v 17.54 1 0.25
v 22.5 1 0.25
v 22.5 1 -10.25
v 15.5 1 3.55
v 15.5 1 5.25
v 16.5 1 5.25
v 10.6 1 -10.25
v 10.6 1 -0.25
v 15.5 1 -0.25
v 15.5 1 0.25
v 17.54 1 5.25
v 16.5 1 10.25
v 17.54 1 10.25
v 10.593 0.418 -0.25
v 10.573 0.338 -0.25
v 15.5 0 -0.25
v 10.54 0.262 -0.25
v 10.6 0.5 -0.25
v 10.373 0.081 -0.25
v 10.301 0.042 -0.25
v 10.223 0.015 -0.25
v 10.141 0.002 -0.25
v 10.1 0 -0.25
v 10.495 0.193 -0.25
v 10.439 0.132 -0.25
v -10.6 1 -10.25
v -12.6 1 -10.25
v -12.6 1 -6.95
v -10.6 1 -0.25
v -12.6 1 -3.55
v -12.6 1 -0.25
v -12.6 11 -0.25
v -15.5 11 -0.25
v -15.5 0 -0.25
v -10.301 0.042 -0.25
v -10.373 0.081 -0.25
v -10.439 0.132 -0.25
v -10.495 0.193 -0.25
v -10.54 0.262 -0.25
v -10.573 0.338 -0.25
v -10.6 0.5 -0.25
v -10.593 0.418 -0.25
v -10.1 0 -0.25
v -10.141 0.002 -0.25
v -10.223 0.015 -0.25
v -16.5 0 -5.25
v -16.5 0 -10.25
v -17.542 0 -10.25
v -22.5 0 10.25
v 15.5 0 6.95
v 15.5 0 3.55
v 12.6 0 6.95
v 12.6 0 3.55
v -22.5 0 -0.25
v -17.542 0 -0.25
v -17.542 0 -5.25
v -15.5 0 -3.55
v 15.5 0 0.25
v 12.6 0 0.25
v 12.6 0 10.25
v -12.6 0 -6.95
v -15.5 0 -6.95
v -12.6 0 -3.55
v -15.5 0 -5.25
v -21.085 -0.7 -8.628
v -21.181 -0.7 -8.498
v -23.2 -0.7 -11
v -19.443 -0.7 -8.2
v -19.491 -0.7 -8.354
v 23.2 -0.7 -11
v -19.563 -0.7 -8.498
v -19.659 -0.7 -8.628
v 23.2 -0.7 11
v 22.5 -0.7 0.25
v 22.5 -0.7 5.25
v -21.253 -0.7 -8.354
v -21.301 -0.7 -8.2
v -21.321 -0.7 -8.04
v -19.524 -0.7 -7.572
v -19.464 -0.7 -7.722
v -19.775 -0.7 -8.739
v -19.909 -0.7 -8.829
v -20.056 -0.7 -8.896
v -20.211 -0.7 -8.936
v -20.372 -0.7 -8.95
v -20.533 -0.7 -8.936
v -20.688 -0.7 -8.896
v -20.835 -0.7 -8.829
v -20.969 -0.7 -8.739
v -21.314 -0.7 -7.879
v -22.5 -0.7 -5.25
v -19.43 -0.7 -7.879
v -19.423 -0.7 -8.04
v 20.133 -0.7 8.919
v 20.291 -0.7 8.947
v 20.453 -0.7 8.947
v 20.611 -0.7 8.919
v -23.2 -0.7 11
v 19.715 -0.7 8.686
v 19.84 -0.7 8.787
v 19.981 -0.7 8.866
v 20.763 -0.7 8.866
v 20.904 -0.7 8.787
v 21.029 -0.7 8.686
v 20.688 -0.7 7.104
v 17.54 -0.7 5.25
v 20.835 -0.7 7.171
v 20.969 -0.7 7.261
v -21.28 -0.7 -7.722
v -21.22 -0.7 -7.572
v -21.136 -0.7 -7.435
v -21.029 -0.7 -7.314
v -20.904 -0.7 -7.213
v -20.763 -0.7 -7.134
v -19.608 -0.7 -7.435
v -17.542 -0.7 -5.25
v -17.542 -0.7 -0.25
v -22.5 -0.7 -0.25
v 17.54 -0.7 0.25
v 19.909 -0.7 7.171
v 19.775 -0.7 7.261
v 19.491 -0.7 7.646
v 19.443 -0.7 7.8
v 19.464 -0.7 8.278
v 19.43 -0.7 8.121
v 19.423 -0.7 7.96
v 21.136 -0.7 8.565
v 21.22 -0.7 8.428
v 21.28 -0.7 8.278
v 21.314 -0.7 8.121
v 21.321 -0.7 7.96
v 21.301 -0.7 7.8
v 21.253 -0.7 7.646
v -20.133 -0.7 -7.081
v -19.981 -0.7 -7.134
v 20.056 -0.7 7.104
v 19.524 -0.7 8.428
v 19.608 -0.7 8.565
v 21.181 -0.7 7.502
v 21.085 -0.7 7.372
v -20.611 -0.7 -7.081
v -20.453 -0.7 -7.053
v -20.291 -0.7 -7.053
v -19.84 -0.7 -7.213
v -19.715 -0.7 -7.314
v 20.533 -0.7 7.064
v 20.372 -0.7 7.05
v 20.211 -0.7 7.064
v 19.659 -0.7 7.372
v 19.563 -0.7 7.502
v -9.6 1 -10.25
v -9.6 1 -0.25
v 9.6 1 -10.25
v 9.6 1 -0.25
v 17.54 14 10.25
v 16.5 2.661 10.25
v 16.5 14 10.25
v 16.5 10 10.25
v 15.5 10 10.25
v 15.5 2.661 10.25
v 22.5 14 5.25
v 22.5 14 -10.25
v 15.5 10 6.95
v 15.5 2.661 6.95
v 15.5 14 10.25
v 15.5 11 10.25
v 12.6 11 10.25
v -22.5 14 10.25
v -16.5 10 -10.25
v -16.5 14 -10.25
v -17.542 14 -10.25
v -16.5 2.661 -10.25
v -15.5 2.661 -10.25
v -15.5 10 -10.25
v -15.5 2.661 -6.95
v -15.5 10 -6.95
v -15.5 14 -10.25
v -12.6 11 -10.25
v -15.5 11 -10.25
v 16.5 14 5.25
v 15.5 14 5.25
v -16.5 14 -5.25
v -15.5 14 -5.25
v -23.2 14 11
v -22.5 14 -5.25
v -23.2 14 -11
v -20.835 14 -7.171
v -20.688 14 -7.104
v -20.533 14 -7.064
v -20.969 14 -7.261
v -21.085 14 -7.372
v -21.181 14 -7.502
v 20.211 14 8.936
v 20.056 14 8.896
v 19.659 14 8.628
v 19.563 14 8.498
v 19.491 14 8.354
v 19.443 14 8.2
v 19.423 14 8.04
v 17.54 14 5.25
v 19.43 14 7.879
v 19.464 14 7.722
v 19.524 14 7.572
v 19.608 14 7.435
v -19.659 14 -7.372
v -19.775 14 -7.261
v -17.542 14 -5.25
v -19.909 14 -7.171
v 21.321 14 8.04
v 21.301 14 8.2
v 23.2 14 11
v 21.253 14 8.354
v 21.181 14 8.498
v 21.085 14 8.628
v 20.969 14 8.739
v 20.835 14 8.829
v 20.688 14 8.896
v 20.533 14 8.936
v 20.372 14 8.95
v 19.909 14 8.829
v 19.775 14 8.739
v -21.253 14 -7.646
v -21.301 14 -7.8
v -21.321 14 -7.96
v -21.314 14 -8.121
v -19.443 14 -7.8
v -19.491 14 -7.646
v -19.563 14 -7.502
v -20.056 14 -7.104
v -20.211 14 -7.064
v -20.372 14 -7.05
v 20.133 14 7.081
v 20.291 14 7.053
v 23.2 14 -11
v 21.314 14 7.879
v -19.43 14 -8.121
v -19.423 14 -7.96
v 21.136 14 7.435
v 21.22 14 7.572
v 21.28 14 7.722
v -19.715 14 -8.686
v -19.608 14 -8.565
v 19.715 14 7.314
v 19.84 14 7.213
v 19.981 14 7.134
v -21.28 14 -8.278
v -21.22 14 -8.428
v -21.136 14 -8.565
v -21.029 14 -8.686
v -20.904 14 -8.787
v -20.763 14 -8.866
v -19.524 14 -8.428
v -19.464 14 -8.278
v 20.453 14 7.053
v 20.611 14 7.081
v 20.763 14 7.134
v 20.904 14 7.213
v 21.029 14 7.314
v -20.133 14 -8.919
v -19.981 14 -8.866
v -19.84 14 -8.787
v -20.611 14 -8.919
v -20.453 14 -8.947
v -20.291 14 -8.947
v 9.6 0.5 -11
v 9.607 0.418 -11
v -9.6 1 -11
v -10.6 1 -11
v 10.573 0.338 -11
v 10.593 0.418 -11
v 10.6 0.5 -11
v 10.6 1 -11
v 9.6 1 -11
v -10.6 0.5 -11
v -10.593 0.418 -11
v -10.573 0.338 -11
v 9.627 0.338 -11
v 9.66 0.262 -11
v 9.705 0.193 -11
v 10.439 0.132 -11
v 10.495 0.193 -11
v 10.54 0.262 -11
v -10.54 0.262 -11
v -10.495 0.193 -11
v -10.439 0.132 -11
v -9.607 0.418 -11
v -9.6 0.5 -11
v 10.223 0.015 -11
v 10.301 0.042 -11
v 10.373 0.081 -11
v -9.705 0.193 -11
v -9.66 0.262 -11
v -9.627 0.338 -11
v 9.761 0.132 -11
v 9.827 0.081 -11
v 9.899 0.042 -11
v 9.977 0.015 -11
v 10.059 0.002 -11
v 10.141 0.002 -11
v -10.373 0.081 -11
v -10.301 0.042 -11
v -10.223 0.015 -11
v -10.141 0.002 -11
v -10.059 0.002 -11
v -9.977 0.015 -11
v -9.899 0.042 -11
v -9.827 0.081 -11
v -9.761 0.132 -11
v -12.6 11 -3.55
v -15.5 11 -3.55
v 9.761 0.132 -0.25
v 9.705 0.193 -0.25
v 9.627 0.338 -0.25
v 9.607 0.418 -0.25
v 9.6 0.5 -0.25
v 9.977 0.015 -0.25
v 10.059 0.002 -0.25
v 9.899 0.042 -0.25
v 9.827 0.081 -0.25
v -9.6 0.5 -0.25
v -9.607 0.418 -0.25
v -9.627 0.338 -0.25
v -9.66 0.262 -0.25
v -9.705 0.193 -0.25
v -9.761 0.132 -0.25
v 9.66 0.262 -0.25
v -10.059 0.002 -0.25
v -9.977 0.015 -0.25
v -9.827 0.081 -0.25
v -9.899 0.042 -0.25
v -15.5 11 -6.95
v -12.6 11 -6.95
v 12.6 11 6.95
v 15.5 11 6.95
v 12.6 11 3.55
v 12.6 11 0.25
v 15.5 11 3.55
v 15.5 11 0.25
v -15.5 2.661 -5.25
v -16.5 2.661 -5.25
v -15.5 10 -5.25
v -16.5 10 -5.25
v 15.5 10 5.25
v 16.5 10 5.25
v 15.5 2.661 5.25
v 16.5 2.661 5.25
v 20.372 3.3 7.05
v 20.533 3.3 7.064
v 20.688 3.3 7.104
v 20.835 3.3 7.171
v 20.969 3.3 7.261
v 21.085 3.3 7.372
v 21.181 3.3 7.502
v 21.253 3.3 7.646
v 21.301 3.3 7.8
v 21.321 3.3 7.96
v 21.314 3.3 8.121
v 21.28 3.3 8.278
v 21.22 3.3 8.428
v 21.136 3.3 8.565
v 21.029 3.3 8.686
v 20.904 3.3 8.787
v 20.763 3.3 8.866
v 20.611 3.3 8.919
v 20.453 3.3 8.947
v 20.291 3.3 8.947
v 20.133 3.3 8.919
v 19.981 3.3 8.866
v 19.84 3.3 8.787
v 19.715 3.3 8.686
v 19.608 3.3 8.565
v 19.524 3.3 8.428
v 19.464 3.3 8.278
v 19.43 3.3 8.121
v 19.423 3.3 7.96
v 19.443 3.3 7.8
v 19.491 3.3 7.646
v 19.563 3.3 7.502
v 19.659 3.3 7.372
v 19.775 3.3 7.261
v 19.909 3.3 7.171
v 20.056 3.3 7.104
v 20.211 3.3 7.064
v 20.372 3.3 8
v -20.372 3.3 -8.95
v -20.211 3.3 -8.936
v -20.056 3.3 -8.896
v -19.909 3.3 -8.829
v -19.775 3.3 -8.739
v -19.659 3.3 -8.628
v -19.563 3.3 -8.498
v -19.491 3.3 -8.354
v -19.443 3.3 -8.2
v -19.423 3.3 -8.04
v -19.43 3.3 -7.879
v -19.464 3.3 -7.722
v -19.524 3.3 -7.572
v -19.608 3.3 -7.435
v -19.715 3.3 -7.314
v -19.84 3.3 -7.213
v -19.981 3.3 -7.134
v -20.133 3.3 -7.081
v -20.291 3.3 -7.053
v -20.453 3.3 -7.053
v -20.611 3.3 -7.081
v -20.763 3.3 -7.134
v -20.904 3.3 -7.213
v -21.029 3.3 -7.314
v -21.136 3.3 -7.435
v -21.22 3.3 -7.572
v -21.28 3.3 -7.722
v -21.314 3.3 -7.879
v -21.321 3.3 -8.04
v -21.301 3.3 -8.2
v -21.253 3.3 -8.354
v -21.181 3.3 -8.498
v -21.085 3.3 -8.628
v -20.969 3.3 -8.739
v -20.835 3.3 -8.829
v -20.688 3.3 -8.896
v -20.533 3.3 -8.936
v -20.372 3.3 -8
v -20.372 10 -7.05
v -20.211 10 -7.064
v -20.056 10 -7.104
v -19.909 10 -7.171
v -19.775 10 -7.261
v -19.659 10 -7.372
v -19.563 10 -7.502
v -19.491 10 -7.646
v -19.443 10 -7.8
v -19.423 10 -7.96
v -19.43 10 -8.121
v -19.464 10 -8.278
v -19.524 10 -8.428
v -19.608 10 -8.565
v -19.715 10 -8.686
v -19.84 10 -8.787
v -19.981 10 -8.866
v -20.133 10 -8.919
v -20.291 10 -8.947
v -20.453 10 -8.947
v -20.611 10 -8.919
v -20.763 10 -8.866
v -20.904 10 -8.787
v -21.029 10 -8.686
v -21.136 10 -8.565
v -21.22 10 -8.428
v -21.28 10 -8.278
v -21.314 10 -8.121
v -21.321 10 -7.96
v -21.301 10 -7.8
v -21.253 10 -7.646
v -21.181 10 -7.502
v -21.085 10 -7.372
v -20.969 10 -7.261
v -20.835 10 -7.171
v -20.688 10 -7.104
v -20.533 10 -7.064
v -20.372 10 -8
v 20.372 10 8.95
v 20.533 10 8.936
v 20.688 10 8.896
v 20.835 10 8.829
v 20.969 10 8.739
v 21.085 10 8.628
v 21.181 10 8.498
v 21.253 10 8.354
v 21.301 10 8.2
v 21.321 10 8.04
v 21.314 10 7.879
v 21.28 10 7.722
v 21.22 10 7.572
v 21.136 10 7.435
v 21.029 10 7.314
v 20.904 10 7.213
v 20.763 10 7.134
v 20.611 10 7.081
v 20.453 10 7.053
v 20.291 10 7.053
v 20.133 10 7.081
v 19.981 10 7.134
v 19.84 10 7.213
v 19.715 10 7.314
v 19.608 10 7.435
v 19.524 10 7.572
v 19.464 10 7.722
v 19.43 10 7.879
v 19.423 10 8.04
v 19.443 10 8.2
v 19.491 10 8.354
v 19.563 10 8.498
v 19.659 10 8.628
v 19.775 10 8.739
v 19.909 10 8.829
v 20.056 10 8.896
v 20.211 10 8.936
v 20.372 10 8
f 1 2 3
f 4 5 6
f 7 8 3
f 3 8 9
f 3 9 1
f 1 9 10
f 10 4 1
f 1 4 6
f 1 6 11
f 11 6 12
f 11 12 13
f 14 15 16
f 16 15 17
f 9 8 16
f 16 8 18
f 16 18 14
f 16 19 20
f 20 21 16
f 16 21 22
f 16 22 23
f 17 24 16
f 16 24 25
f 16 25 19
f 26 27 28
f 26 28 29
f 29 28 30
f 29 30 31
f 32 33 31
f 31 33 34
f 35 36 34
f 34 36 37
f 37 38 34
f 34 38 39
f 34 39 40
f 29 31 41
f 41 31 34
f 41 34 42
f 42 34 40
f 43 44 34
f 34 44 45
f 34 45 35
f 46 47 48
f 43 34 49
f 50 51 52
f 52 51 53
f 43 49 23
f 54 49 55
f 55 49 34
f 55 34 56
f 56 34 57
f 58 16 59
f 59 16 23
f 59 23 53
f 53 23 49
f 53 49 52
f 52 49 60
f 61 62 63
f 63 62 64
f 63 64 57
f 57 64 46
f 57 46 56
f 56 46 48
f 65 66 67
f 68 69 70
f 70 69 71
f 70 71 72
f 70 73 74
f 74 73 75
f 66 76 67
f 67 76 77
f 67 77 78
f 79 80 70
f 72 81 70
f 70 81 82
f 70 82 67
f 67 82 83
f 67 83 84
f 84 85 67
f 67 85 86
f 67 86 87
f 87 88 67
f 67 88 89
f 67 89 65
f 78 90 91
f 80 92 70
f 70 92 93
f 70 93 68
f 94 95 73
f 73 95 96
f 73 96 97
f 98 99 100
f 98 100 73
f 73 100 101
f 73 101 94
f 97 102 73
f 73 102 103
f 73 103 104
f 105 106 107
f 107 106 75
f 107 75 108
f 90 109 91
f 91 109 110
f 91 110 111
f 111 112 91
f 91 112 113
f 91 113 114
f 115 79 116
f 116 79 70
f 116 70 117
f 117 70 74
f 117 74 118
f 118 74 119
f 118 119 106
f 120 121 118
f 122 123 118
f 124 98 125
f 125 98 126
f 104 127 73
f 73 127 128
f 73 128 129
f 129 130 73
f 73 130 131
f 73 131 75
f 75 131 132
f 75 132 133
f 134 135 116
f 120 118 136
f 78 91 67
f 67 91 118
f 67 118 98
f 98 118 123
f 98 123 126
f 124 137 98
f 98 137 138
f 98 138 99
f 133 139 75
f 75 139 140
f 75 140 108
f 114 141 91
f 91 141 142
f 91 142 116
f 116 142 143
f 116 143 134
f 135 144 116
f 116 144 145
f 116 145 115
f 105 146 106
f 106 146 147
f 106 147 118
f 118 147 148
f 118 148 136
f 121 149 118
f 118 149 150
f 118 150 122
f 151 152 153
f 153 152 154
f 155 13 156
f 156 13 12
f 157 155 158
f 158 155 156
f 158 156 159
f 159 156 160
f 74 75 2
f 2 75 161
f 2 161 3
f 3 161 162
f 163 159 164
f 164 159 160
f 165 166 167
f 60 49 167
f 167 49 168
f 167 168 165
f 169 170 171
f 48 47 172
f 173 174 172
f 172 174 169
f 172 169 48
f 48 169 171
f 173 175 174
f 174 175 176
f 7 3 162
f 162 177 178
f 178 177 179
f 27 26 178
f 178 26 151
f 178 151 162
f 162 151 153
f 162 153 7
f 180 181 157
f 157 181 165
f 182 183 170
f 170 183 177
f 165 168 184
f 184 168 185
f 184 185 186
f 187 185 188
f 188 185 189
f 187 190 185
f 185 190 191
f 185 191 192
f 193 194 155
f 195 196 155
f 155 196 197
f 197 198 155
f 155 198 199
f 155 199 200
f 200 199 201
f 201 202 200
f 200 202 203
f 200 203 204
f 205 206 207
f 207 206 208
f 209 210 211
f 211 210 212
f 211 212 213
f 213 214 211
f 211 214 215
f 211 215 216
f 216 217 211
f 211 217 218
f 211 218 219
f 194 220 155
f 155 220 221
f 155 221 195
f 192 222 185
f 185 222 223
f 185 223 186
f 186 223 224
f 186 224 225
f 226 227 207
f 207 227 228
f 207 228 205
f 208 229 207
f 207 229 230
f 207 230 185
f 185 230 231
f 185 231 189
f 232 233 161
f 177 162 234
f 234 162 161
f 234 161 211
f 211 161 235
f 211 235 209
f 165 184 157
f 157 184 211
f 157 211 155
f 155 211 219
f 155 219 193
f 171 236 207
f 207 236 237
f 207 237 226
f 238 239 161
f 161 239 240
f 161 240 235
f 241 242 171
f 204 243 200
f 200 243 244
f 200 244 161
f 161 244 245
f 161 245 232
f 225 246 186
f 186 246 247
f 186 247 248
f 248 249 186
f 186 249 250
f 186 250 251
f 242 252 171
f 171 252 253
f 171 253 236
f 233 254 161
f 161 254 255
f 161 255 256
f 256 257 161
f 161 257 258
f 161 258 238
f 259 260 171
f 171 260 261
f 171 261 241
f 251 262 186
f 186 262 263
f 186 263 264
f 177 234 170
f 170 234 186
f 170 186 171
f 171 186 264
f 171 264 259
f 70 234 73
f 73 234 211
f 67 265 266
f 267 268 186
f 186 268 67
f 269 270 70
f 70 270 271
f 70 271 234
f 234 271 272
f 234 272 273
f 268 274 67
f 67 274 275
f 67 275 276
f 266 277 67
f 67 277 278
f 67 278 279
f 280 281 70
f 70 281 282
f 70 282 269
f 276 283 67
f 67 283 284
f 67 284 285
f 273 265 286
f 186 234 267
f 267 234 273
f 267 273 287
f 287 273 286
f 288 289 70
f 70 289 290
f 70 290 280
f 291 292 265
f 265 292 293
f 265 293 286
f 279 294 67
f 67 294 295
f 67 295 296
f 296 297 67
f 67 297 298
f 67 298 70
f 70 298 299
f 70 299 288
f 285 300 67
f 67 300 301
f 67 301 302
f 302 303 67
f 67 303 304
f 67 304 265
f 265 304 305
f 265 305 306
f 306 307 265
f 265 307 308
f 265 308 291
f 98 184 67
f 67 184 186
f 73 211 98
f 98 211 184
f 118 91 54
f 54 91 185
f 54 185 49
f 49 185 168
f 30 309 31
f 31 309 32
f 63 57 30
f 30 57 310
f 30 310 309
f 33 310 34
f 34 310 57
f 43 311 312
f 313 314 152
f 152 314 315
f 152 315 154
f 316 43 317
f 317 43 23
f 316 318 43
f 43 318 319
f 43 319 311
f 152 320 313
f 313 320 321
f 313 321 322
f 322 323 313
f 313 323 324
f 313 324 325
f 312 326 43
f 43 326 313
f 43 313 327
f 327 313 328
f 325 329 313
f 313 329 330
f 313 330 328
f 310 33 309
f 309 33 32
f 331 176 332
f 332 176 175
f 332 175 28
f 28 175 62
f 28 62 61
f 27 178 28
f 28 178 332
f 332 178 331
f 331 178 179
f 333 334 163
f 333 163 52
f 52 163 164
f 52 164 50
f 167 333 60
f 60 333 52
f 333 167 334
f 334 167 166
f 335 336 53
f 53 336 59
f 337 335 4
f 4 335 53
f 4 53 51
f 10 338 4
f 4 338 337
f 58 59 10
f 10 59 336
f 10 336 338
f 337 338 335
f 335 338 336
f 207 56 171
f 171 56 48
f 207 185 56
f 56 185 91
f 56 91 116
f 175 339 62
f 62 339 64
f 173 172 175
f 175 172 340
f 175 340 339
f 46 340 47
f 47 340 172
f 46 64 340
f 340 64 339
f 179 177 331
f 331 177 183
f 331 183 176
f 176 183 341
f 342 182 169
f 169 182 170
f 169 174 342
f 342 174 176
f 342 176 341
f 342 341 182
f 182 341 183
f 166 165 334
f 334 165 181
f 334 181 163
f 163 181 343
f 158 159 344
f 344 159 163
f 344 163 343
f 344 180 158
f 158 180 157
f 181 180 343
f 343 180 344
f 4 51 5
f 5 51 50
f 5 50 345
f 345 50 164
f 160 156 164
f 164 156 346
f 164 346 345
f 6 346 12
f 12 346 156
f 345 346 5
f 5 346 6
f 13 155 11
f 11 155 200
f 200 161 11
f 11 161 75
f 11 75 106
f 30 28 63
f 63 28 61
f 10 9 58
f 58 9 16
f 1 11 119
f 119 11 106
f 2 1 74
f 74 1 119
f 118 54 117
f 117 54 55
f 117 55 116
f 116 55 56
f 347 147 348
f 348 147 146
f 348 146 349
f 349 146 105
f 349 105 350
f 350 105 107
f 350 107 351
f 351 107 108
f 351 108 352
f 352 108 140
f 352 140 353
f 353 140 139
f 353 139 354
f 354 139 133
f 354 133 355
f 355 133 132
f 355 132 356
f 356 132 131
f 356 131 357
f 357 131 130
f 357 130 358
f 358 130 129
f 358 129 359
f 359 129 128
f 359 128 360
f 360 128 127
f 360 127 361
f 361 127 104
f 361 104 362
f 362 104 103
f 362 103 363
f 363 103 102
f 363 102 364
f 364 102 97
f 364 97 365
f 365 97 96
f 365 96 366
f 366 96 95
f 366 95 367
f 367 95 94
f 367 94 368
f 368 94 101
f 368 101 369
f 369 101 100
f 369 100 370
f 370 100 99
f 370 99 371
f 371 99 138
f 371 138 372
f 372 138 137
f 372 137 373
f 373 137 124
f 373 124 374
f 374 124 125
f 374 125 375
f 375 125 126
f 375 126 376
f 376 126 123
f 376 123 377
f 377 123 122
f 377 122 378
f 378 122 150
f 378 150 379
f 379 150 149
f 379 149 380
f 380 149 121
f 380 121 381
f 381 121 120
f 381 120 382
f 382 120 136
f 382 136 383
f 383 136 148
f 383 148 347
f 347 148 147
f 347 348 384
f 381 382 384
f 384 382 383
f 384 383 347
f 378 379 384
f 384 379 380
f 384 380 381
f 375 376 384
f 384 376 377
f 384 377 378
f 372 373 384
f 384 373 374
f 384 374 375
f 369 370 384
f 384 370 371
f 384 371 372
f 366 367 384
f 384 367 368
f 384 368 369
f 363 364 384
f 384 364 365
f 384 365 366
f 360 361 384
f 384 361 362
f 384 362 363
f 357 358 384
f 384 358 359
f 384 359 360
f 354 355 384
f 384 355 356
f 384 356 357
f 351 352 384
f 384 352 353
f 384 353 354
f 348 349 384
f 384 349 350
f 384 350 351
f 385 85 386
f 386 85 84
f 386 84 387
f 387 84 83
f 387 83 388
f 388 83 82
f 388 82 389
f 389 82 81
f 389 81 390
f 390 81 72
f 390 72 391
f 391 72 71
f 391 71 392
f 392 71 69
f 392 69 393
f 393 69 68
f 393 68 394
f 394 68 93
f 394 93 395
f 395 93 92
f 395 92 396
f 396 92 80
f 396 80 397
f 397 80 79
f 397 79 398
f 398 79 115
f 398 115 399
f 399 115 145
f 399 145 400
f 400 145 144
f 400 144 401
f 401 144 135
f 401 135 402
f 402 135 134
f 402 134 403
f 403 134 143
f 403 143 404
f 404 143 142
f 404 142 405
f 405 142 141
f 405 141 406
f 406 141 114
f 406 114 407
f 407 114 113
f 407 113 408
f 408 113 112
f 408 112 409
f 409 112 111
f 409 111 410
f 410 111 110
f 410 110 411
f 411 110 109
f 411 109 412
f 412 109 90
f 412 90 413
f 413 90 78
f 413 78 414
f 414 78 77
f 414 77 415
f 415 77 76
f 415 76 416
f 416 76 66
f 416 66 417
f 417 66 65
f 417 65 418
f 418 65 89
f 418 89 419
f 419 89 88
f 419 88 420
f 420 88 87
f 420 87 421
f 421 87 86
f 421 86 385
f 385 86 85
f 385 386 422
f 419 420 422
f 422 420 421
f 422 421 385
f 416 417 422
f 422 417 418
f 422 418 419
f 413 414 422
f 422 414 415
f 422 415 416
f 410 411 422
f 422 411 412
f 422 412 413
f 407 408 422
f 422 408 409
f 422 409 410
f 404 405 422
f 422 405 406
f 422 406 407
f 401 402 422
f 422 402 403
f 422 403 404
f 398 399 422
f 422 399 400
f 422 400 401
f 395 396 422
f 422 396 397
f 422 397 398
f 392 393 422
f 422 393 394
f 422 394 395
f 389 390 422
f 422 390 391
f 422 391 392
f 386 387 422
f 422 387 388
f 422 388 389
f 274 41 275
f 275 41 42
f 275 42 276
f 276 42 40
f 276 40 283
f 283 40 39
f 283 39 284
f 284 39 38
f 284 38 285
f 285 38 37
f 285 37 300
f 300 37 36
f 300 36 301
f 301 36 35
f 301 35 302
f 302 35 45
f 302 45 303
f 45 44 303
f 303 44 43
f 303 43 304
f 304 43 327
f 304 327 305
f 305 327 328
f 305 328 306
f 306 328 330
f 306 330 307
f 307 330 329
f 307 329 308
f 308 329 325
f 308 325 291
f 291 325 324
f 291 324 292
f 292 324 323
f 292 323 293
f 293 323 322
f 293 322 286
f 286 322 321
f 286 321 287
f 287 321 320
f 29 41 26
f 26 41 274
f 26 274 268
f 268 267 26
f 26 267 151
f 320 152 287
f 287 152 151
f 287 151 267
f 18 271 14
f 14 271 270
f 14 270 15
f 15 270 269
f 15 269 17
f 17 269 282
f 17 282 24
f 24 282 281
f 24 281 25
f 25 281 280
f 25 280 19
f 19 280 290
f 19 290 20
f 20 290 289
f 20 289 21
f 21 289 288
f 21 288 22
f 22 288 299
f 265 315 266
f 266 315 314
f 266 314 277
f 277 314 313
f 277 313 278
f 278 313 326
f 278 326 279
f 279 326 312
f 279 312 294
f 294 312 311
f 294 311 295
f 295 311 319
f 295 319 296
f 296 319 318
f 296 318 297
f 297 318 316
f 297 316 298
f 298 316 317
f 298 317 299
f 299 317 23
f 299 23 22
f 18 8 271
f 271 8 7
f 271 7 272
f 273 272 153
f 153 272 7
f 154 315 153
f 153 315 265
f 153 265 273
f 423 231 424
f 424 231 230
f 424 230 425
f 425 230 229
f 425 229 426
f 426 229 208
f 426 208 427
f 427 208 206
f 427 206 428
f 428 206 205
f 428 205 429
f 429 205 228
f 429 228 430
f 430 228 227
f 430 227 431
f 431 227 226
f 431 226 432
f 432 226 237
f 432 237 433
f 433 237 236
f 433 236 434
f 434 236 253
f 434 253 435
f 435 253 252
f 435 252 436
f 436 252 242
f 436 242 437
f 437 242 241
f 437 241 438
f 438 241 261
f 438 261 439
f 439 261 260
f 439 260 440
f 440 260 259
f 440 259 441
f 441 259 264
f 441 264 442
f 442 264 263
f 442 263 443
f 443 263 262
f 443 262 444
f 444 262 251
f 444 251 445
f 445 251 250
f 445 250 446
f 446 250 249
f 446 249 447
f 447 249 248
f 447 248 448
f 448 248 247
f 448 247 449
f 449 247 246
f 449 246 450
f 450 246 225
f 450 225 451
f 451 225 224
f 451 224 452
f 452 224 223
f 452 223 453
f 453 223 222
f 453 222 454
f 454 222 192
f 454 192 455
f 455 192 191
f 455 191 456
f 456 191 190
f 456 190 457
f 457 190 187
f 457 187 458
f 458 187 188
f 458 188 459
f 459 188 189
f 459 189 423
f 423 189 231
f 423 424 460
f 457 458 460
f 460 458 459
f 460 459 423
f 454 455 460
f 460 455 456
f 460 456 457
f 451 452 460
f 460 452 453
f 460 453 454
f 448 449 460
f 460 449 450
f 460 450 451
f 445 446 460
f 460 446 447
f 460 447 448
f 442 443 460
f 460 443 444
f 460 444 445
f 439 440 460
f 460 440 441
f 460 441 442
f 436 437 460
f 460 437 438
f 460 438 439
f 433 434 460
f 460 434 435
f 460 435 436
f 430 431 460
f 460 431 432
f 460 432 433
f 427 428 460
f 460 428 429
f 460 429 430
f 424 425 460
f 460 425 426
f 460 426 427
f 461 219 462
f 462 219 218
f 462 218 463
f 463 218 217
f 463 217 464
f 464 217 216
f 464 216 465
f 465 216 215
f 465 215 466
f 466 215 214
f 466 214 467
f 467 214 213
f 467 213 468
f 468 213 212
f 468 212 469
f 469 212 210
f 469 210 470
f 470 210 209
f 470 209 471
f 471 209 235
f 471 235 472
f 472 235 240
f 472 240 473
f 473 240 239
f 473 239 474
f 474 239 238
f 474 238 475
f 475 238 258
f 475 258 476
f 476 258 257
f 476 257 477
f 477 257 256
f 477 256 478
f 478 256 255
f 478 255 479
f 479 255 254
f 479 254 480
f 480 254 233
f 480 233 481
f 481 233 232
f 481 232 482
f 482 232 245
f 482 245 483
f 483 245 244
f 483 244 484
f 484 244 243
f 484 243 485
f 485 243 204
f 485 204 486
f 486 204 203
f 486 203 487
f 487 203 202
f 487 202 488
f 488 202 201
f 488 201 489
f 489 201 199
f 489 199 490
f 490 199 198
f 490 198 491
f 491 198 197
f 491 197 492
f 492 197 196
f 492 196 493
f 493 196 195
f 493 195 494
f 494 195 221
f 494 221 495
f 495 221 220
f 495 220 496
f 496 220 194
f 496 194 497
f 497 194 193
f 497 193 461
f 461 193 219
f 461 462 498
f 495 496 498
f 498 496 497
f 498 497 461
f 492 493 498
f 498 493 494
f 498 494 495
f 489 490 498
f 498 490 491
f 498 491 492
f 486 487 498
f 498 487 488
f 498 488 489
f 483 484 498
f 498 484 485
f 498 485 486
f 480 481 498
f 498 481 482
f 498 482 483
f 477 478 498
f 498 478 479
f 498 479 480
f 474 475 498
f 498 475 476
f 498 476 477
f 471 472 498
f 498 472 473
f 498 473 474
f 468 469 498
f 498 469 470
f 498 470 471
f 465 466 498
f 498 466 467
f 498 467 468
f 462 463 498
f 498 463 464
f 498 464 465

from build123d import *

# Parameters (mm, degrees)
ESBO_O1_W                = 46.4
ESBO_O1_H                = 22
ESBO_O1_W_2              = 45
ESBO_O1_H_2              = 20.5
RESSALTO_EXTRUS_O1_DEPTH = 14
ESBO_O2_W                = 46.4
ESBO_O2_H                = 22
RESSALTO_EXTRUS_O2_DEPTH = 0.7
ESBO_O3_W                = 2.9
ESBO_O3_H                = 3.3
RESSALTO_EXTRUS_O3_DEPTH = 11
ESBO_O4_W                = 4.95750459
ESBO_O4_H                = 14
ESBO_O4_W_2              = 1
ESBO_O4_H_2              = 2.660947199
ESBO_O4_H_3              = 4
RESSALTO_EXTRUS_O4_DEPTH = 5
ESBO_O5_W                = 1
ESBO_O5_H                = 2.660947199
ESBO_O5_W_2              = 4.96
ESBO_O5_H_2              = 14
RESSALTO_EXTRUS_O5_DEPTH = 5
RESSALTO_EXTRUS_O9_DEPTH = 1
ESBO_O15_W               = 4.95750459
ESBO_O15_H               = 5
ESBO_O15_W_2             = 4.96
CORTE_EXTRUS_O3_DEPTH    = 2.5
ESBO_O16_R               = 0.95
CORTE_EXTRUS_O4_DEPTH    = 4
CORTE_EXTRUS_O7_DEPTH    = 11
CORTE_EXTRUS_O8_DEPTH    = 11
CORTE_EXTRUS_O9_START    = -4
ESBO_O20_R               = 0.95
CORTE_EXTRUS_O9_DEPTH    = 4


with BuildPart() as part:
    # Esboço1 → Ressalto-extrusão1 (new body)
    with BuildSketch(Plane(origin=(0, 0, 0), x_dir=(1, 0, 0), z_dir=(0, 1, 0))):
        Rectangle(ESBO_O1_W, ESBO_O1_H)
        Rectangle(ESBO_O1_W_2, ESBO_O1_H_2, mode=Mode.SUBTRACT)
    extrude(amount=RESSALTO_EXTRUS_O1_DEPTH)

    # Esboço2 → Ressalto-extrusão2 (add)
    with BuildSketch(Plane(origin=(0, 0, 0), x_dir=(1, 0, 0), z_dir=(0, 1, 0))):
        Rectangle(ESBO_O2_W, ESBO_O2_H)
    extrude(amount=-RESSALTO_EXTRUS_O2_DEPTH)

    # Esboço3 → Ressalto-extrusão3 (add)
    with BuildSketch(Plane(origin=(0, 0, 0), x_dir=(1, 0, 0), z_dir=(0, 1, 0))):
        with Locations((-14.05, 1.9)):
            Rectangle(ESBO_O3_W, ESBO_O3_H)
        with Locations((-14.05, 8.6)):
            Rectangle(ESBO_O3_W, ESBO_O3_H)
        with Locations((14.05, -8.6)):
            Rectangle(ESBO_O3_W, ESBO_O3_H)
        with Locations((14.05, -1.9)):
            Rectangle(ESBO_O3_W, ESBO_O3_H)
    extrude(amount=RESSALTO_EXTRUS_O3_DEPTH)

    # Esboço4 → Ressalto-extrusão4 (add)
    with BuildSketch(Plane.XY.offset(-10.25)):
        with Locations((-20.021247705, 7)):
            Rectangle(ESBO_O4_W, ESBO_O4_H)
        with Locations((-16, 1.3304736)):
            Rectangle(ESBO_O4_W_2, ESBO_O4_H_2)
        with Locations((-16, 12)):
            Rectangle(ESBO_O4_W_2, ESBO_O4_H_3)
    extrude(amount=RESSALTO_EXTRUS_O4_DEPTH)

    # Esboço5 → Ressalto-extrusão5 (add)
    with BuildSketch(Plane(origin=(0, 0, 10.25), x_dir=(-1, 0, 0), z_dir=(0, 0, -1))):
        Polygon((-15.5, 14), (-16.5, 14), (-16.5, 10), (-15.5, 10), (-15.5, 11), align=None)
        with Locations((-16, 1.3304736)):
            Rectangle(ESBO_O5_W, ESBO_O5_H)
        with Locations((-20.02, 7)):
            Rectangle(ESBO_O5_W_2, ESBO_O5_H_2)
    extrude(amount=RESSALTO_EXTRUS_O5_DEPTH)

    # Esboço10 → Ressalto-extrusão9 (add)
    with BuildSketch(Plane(origin=(0, 0, 0), x_dir=(1, 0, 0), z_dir=(0, 1, 0))):
        Polygon((15.5, 0.25), (-12.6, 0.25), (-12.6, 10.25), (22.5, 10.25), (22.5, -10.25), (15.5, -10.25), align=None)
    extrude(amount=RESSALTO_EXTRUS_O9_DEPTH)

    # Esboço15 → Corte-extrusão3 (cut, symmetric)
    with BuildSketch(Plane.XZ.offset(0.7)):
        with Locations((-20.021247705, -2.75)):
            Rectangle(ESBO_O15_W, ESBO_O15_H)
        with Locations((20.02, 2.75)):
            Rectangle(ESBO_O15_W_2, ESBO_O15_H)
    extrude(amount=CORTE_EXTRUS_O3_DEPTH, both=True, mode=Mode.SUBTRACT)

    # Esboço16 → Corte-extrusão4 (cut)
    with BuildSketch(Plane.XZ.offset(0.7)):
        with Locations(Location((-20.372, -8, 0), (0, 0, 270))):
            Circle(ESBO_O16_R)
        with Locations(Location((20.372, 8, 0), (0, 0, 270))):
            Circle(ESBO_O16_R)
    extrude(amount=-CORTE_EXTRUS_O4_DEPTH, mode=Mode.SUBTRACT)

    # Esboço18 → Corte-extrusão7 (cut)
    with BuildSketch(Plane.XY.offset(-0.25)):
        with BuildLine():
            Line((-10.6, 0.5), (-10.6, 1))
            Line((-10.6, 1), (-9.6, 1))
            Line((-9.6, 1), (-9.6, 0.5))
            ThreePointArc((-9.6, 0.5), (-10.1, 0), (-10.6, 0.5))
        make_face()
    extrude(amount=-CORTE_EXTRUS_O7_DEPTH, mode=Mode.SUBTRACT)

    # Esboço19 → Corte-extrusão8 (cut)
    with BuildSketch(Plane(origin=(0, 0, -11), x_dir=(-1, 0, 0), z_dir=(0, 0, -1))):
        with BuildLine():
            Line((-10.6, 0.5), (-10.6, 1))
            Line((-10.6, 1), (-9.6, 1))
            Line((-9.6, 1), (-9.6, 0.5))
            ThreePointArc((-9.6, 0.5), (-10.1, 0), (-10.6, 0.5))
        make_face()
    extrude(amount=-CORTE_EXTRUS_O8_DEPTH, mode=Mode.SUBTRACT)

    # Esboço20 → Corte-extrusão9 (cut)
    with BuildSketch(Plane(origin=(0, 14, 0), x_dir=(1, 0, 0), z_dir=(0, 1, 0)).offset(CORTE_EXTRUS_O9_START)):
        with Locations(Location((20.372, -8, 0), (0, 0, 90))):
            Circle(ESBO_O20_R)
        with Locations(Location((-20.372, 8, 0), (0, 0, 90))):
            Circle(ESBO_O20_R)
    extrude(amount=CORTE_EXTRUS_O9_DEPTH, mode=Mode.SUBTRACT)


solid = part.part
